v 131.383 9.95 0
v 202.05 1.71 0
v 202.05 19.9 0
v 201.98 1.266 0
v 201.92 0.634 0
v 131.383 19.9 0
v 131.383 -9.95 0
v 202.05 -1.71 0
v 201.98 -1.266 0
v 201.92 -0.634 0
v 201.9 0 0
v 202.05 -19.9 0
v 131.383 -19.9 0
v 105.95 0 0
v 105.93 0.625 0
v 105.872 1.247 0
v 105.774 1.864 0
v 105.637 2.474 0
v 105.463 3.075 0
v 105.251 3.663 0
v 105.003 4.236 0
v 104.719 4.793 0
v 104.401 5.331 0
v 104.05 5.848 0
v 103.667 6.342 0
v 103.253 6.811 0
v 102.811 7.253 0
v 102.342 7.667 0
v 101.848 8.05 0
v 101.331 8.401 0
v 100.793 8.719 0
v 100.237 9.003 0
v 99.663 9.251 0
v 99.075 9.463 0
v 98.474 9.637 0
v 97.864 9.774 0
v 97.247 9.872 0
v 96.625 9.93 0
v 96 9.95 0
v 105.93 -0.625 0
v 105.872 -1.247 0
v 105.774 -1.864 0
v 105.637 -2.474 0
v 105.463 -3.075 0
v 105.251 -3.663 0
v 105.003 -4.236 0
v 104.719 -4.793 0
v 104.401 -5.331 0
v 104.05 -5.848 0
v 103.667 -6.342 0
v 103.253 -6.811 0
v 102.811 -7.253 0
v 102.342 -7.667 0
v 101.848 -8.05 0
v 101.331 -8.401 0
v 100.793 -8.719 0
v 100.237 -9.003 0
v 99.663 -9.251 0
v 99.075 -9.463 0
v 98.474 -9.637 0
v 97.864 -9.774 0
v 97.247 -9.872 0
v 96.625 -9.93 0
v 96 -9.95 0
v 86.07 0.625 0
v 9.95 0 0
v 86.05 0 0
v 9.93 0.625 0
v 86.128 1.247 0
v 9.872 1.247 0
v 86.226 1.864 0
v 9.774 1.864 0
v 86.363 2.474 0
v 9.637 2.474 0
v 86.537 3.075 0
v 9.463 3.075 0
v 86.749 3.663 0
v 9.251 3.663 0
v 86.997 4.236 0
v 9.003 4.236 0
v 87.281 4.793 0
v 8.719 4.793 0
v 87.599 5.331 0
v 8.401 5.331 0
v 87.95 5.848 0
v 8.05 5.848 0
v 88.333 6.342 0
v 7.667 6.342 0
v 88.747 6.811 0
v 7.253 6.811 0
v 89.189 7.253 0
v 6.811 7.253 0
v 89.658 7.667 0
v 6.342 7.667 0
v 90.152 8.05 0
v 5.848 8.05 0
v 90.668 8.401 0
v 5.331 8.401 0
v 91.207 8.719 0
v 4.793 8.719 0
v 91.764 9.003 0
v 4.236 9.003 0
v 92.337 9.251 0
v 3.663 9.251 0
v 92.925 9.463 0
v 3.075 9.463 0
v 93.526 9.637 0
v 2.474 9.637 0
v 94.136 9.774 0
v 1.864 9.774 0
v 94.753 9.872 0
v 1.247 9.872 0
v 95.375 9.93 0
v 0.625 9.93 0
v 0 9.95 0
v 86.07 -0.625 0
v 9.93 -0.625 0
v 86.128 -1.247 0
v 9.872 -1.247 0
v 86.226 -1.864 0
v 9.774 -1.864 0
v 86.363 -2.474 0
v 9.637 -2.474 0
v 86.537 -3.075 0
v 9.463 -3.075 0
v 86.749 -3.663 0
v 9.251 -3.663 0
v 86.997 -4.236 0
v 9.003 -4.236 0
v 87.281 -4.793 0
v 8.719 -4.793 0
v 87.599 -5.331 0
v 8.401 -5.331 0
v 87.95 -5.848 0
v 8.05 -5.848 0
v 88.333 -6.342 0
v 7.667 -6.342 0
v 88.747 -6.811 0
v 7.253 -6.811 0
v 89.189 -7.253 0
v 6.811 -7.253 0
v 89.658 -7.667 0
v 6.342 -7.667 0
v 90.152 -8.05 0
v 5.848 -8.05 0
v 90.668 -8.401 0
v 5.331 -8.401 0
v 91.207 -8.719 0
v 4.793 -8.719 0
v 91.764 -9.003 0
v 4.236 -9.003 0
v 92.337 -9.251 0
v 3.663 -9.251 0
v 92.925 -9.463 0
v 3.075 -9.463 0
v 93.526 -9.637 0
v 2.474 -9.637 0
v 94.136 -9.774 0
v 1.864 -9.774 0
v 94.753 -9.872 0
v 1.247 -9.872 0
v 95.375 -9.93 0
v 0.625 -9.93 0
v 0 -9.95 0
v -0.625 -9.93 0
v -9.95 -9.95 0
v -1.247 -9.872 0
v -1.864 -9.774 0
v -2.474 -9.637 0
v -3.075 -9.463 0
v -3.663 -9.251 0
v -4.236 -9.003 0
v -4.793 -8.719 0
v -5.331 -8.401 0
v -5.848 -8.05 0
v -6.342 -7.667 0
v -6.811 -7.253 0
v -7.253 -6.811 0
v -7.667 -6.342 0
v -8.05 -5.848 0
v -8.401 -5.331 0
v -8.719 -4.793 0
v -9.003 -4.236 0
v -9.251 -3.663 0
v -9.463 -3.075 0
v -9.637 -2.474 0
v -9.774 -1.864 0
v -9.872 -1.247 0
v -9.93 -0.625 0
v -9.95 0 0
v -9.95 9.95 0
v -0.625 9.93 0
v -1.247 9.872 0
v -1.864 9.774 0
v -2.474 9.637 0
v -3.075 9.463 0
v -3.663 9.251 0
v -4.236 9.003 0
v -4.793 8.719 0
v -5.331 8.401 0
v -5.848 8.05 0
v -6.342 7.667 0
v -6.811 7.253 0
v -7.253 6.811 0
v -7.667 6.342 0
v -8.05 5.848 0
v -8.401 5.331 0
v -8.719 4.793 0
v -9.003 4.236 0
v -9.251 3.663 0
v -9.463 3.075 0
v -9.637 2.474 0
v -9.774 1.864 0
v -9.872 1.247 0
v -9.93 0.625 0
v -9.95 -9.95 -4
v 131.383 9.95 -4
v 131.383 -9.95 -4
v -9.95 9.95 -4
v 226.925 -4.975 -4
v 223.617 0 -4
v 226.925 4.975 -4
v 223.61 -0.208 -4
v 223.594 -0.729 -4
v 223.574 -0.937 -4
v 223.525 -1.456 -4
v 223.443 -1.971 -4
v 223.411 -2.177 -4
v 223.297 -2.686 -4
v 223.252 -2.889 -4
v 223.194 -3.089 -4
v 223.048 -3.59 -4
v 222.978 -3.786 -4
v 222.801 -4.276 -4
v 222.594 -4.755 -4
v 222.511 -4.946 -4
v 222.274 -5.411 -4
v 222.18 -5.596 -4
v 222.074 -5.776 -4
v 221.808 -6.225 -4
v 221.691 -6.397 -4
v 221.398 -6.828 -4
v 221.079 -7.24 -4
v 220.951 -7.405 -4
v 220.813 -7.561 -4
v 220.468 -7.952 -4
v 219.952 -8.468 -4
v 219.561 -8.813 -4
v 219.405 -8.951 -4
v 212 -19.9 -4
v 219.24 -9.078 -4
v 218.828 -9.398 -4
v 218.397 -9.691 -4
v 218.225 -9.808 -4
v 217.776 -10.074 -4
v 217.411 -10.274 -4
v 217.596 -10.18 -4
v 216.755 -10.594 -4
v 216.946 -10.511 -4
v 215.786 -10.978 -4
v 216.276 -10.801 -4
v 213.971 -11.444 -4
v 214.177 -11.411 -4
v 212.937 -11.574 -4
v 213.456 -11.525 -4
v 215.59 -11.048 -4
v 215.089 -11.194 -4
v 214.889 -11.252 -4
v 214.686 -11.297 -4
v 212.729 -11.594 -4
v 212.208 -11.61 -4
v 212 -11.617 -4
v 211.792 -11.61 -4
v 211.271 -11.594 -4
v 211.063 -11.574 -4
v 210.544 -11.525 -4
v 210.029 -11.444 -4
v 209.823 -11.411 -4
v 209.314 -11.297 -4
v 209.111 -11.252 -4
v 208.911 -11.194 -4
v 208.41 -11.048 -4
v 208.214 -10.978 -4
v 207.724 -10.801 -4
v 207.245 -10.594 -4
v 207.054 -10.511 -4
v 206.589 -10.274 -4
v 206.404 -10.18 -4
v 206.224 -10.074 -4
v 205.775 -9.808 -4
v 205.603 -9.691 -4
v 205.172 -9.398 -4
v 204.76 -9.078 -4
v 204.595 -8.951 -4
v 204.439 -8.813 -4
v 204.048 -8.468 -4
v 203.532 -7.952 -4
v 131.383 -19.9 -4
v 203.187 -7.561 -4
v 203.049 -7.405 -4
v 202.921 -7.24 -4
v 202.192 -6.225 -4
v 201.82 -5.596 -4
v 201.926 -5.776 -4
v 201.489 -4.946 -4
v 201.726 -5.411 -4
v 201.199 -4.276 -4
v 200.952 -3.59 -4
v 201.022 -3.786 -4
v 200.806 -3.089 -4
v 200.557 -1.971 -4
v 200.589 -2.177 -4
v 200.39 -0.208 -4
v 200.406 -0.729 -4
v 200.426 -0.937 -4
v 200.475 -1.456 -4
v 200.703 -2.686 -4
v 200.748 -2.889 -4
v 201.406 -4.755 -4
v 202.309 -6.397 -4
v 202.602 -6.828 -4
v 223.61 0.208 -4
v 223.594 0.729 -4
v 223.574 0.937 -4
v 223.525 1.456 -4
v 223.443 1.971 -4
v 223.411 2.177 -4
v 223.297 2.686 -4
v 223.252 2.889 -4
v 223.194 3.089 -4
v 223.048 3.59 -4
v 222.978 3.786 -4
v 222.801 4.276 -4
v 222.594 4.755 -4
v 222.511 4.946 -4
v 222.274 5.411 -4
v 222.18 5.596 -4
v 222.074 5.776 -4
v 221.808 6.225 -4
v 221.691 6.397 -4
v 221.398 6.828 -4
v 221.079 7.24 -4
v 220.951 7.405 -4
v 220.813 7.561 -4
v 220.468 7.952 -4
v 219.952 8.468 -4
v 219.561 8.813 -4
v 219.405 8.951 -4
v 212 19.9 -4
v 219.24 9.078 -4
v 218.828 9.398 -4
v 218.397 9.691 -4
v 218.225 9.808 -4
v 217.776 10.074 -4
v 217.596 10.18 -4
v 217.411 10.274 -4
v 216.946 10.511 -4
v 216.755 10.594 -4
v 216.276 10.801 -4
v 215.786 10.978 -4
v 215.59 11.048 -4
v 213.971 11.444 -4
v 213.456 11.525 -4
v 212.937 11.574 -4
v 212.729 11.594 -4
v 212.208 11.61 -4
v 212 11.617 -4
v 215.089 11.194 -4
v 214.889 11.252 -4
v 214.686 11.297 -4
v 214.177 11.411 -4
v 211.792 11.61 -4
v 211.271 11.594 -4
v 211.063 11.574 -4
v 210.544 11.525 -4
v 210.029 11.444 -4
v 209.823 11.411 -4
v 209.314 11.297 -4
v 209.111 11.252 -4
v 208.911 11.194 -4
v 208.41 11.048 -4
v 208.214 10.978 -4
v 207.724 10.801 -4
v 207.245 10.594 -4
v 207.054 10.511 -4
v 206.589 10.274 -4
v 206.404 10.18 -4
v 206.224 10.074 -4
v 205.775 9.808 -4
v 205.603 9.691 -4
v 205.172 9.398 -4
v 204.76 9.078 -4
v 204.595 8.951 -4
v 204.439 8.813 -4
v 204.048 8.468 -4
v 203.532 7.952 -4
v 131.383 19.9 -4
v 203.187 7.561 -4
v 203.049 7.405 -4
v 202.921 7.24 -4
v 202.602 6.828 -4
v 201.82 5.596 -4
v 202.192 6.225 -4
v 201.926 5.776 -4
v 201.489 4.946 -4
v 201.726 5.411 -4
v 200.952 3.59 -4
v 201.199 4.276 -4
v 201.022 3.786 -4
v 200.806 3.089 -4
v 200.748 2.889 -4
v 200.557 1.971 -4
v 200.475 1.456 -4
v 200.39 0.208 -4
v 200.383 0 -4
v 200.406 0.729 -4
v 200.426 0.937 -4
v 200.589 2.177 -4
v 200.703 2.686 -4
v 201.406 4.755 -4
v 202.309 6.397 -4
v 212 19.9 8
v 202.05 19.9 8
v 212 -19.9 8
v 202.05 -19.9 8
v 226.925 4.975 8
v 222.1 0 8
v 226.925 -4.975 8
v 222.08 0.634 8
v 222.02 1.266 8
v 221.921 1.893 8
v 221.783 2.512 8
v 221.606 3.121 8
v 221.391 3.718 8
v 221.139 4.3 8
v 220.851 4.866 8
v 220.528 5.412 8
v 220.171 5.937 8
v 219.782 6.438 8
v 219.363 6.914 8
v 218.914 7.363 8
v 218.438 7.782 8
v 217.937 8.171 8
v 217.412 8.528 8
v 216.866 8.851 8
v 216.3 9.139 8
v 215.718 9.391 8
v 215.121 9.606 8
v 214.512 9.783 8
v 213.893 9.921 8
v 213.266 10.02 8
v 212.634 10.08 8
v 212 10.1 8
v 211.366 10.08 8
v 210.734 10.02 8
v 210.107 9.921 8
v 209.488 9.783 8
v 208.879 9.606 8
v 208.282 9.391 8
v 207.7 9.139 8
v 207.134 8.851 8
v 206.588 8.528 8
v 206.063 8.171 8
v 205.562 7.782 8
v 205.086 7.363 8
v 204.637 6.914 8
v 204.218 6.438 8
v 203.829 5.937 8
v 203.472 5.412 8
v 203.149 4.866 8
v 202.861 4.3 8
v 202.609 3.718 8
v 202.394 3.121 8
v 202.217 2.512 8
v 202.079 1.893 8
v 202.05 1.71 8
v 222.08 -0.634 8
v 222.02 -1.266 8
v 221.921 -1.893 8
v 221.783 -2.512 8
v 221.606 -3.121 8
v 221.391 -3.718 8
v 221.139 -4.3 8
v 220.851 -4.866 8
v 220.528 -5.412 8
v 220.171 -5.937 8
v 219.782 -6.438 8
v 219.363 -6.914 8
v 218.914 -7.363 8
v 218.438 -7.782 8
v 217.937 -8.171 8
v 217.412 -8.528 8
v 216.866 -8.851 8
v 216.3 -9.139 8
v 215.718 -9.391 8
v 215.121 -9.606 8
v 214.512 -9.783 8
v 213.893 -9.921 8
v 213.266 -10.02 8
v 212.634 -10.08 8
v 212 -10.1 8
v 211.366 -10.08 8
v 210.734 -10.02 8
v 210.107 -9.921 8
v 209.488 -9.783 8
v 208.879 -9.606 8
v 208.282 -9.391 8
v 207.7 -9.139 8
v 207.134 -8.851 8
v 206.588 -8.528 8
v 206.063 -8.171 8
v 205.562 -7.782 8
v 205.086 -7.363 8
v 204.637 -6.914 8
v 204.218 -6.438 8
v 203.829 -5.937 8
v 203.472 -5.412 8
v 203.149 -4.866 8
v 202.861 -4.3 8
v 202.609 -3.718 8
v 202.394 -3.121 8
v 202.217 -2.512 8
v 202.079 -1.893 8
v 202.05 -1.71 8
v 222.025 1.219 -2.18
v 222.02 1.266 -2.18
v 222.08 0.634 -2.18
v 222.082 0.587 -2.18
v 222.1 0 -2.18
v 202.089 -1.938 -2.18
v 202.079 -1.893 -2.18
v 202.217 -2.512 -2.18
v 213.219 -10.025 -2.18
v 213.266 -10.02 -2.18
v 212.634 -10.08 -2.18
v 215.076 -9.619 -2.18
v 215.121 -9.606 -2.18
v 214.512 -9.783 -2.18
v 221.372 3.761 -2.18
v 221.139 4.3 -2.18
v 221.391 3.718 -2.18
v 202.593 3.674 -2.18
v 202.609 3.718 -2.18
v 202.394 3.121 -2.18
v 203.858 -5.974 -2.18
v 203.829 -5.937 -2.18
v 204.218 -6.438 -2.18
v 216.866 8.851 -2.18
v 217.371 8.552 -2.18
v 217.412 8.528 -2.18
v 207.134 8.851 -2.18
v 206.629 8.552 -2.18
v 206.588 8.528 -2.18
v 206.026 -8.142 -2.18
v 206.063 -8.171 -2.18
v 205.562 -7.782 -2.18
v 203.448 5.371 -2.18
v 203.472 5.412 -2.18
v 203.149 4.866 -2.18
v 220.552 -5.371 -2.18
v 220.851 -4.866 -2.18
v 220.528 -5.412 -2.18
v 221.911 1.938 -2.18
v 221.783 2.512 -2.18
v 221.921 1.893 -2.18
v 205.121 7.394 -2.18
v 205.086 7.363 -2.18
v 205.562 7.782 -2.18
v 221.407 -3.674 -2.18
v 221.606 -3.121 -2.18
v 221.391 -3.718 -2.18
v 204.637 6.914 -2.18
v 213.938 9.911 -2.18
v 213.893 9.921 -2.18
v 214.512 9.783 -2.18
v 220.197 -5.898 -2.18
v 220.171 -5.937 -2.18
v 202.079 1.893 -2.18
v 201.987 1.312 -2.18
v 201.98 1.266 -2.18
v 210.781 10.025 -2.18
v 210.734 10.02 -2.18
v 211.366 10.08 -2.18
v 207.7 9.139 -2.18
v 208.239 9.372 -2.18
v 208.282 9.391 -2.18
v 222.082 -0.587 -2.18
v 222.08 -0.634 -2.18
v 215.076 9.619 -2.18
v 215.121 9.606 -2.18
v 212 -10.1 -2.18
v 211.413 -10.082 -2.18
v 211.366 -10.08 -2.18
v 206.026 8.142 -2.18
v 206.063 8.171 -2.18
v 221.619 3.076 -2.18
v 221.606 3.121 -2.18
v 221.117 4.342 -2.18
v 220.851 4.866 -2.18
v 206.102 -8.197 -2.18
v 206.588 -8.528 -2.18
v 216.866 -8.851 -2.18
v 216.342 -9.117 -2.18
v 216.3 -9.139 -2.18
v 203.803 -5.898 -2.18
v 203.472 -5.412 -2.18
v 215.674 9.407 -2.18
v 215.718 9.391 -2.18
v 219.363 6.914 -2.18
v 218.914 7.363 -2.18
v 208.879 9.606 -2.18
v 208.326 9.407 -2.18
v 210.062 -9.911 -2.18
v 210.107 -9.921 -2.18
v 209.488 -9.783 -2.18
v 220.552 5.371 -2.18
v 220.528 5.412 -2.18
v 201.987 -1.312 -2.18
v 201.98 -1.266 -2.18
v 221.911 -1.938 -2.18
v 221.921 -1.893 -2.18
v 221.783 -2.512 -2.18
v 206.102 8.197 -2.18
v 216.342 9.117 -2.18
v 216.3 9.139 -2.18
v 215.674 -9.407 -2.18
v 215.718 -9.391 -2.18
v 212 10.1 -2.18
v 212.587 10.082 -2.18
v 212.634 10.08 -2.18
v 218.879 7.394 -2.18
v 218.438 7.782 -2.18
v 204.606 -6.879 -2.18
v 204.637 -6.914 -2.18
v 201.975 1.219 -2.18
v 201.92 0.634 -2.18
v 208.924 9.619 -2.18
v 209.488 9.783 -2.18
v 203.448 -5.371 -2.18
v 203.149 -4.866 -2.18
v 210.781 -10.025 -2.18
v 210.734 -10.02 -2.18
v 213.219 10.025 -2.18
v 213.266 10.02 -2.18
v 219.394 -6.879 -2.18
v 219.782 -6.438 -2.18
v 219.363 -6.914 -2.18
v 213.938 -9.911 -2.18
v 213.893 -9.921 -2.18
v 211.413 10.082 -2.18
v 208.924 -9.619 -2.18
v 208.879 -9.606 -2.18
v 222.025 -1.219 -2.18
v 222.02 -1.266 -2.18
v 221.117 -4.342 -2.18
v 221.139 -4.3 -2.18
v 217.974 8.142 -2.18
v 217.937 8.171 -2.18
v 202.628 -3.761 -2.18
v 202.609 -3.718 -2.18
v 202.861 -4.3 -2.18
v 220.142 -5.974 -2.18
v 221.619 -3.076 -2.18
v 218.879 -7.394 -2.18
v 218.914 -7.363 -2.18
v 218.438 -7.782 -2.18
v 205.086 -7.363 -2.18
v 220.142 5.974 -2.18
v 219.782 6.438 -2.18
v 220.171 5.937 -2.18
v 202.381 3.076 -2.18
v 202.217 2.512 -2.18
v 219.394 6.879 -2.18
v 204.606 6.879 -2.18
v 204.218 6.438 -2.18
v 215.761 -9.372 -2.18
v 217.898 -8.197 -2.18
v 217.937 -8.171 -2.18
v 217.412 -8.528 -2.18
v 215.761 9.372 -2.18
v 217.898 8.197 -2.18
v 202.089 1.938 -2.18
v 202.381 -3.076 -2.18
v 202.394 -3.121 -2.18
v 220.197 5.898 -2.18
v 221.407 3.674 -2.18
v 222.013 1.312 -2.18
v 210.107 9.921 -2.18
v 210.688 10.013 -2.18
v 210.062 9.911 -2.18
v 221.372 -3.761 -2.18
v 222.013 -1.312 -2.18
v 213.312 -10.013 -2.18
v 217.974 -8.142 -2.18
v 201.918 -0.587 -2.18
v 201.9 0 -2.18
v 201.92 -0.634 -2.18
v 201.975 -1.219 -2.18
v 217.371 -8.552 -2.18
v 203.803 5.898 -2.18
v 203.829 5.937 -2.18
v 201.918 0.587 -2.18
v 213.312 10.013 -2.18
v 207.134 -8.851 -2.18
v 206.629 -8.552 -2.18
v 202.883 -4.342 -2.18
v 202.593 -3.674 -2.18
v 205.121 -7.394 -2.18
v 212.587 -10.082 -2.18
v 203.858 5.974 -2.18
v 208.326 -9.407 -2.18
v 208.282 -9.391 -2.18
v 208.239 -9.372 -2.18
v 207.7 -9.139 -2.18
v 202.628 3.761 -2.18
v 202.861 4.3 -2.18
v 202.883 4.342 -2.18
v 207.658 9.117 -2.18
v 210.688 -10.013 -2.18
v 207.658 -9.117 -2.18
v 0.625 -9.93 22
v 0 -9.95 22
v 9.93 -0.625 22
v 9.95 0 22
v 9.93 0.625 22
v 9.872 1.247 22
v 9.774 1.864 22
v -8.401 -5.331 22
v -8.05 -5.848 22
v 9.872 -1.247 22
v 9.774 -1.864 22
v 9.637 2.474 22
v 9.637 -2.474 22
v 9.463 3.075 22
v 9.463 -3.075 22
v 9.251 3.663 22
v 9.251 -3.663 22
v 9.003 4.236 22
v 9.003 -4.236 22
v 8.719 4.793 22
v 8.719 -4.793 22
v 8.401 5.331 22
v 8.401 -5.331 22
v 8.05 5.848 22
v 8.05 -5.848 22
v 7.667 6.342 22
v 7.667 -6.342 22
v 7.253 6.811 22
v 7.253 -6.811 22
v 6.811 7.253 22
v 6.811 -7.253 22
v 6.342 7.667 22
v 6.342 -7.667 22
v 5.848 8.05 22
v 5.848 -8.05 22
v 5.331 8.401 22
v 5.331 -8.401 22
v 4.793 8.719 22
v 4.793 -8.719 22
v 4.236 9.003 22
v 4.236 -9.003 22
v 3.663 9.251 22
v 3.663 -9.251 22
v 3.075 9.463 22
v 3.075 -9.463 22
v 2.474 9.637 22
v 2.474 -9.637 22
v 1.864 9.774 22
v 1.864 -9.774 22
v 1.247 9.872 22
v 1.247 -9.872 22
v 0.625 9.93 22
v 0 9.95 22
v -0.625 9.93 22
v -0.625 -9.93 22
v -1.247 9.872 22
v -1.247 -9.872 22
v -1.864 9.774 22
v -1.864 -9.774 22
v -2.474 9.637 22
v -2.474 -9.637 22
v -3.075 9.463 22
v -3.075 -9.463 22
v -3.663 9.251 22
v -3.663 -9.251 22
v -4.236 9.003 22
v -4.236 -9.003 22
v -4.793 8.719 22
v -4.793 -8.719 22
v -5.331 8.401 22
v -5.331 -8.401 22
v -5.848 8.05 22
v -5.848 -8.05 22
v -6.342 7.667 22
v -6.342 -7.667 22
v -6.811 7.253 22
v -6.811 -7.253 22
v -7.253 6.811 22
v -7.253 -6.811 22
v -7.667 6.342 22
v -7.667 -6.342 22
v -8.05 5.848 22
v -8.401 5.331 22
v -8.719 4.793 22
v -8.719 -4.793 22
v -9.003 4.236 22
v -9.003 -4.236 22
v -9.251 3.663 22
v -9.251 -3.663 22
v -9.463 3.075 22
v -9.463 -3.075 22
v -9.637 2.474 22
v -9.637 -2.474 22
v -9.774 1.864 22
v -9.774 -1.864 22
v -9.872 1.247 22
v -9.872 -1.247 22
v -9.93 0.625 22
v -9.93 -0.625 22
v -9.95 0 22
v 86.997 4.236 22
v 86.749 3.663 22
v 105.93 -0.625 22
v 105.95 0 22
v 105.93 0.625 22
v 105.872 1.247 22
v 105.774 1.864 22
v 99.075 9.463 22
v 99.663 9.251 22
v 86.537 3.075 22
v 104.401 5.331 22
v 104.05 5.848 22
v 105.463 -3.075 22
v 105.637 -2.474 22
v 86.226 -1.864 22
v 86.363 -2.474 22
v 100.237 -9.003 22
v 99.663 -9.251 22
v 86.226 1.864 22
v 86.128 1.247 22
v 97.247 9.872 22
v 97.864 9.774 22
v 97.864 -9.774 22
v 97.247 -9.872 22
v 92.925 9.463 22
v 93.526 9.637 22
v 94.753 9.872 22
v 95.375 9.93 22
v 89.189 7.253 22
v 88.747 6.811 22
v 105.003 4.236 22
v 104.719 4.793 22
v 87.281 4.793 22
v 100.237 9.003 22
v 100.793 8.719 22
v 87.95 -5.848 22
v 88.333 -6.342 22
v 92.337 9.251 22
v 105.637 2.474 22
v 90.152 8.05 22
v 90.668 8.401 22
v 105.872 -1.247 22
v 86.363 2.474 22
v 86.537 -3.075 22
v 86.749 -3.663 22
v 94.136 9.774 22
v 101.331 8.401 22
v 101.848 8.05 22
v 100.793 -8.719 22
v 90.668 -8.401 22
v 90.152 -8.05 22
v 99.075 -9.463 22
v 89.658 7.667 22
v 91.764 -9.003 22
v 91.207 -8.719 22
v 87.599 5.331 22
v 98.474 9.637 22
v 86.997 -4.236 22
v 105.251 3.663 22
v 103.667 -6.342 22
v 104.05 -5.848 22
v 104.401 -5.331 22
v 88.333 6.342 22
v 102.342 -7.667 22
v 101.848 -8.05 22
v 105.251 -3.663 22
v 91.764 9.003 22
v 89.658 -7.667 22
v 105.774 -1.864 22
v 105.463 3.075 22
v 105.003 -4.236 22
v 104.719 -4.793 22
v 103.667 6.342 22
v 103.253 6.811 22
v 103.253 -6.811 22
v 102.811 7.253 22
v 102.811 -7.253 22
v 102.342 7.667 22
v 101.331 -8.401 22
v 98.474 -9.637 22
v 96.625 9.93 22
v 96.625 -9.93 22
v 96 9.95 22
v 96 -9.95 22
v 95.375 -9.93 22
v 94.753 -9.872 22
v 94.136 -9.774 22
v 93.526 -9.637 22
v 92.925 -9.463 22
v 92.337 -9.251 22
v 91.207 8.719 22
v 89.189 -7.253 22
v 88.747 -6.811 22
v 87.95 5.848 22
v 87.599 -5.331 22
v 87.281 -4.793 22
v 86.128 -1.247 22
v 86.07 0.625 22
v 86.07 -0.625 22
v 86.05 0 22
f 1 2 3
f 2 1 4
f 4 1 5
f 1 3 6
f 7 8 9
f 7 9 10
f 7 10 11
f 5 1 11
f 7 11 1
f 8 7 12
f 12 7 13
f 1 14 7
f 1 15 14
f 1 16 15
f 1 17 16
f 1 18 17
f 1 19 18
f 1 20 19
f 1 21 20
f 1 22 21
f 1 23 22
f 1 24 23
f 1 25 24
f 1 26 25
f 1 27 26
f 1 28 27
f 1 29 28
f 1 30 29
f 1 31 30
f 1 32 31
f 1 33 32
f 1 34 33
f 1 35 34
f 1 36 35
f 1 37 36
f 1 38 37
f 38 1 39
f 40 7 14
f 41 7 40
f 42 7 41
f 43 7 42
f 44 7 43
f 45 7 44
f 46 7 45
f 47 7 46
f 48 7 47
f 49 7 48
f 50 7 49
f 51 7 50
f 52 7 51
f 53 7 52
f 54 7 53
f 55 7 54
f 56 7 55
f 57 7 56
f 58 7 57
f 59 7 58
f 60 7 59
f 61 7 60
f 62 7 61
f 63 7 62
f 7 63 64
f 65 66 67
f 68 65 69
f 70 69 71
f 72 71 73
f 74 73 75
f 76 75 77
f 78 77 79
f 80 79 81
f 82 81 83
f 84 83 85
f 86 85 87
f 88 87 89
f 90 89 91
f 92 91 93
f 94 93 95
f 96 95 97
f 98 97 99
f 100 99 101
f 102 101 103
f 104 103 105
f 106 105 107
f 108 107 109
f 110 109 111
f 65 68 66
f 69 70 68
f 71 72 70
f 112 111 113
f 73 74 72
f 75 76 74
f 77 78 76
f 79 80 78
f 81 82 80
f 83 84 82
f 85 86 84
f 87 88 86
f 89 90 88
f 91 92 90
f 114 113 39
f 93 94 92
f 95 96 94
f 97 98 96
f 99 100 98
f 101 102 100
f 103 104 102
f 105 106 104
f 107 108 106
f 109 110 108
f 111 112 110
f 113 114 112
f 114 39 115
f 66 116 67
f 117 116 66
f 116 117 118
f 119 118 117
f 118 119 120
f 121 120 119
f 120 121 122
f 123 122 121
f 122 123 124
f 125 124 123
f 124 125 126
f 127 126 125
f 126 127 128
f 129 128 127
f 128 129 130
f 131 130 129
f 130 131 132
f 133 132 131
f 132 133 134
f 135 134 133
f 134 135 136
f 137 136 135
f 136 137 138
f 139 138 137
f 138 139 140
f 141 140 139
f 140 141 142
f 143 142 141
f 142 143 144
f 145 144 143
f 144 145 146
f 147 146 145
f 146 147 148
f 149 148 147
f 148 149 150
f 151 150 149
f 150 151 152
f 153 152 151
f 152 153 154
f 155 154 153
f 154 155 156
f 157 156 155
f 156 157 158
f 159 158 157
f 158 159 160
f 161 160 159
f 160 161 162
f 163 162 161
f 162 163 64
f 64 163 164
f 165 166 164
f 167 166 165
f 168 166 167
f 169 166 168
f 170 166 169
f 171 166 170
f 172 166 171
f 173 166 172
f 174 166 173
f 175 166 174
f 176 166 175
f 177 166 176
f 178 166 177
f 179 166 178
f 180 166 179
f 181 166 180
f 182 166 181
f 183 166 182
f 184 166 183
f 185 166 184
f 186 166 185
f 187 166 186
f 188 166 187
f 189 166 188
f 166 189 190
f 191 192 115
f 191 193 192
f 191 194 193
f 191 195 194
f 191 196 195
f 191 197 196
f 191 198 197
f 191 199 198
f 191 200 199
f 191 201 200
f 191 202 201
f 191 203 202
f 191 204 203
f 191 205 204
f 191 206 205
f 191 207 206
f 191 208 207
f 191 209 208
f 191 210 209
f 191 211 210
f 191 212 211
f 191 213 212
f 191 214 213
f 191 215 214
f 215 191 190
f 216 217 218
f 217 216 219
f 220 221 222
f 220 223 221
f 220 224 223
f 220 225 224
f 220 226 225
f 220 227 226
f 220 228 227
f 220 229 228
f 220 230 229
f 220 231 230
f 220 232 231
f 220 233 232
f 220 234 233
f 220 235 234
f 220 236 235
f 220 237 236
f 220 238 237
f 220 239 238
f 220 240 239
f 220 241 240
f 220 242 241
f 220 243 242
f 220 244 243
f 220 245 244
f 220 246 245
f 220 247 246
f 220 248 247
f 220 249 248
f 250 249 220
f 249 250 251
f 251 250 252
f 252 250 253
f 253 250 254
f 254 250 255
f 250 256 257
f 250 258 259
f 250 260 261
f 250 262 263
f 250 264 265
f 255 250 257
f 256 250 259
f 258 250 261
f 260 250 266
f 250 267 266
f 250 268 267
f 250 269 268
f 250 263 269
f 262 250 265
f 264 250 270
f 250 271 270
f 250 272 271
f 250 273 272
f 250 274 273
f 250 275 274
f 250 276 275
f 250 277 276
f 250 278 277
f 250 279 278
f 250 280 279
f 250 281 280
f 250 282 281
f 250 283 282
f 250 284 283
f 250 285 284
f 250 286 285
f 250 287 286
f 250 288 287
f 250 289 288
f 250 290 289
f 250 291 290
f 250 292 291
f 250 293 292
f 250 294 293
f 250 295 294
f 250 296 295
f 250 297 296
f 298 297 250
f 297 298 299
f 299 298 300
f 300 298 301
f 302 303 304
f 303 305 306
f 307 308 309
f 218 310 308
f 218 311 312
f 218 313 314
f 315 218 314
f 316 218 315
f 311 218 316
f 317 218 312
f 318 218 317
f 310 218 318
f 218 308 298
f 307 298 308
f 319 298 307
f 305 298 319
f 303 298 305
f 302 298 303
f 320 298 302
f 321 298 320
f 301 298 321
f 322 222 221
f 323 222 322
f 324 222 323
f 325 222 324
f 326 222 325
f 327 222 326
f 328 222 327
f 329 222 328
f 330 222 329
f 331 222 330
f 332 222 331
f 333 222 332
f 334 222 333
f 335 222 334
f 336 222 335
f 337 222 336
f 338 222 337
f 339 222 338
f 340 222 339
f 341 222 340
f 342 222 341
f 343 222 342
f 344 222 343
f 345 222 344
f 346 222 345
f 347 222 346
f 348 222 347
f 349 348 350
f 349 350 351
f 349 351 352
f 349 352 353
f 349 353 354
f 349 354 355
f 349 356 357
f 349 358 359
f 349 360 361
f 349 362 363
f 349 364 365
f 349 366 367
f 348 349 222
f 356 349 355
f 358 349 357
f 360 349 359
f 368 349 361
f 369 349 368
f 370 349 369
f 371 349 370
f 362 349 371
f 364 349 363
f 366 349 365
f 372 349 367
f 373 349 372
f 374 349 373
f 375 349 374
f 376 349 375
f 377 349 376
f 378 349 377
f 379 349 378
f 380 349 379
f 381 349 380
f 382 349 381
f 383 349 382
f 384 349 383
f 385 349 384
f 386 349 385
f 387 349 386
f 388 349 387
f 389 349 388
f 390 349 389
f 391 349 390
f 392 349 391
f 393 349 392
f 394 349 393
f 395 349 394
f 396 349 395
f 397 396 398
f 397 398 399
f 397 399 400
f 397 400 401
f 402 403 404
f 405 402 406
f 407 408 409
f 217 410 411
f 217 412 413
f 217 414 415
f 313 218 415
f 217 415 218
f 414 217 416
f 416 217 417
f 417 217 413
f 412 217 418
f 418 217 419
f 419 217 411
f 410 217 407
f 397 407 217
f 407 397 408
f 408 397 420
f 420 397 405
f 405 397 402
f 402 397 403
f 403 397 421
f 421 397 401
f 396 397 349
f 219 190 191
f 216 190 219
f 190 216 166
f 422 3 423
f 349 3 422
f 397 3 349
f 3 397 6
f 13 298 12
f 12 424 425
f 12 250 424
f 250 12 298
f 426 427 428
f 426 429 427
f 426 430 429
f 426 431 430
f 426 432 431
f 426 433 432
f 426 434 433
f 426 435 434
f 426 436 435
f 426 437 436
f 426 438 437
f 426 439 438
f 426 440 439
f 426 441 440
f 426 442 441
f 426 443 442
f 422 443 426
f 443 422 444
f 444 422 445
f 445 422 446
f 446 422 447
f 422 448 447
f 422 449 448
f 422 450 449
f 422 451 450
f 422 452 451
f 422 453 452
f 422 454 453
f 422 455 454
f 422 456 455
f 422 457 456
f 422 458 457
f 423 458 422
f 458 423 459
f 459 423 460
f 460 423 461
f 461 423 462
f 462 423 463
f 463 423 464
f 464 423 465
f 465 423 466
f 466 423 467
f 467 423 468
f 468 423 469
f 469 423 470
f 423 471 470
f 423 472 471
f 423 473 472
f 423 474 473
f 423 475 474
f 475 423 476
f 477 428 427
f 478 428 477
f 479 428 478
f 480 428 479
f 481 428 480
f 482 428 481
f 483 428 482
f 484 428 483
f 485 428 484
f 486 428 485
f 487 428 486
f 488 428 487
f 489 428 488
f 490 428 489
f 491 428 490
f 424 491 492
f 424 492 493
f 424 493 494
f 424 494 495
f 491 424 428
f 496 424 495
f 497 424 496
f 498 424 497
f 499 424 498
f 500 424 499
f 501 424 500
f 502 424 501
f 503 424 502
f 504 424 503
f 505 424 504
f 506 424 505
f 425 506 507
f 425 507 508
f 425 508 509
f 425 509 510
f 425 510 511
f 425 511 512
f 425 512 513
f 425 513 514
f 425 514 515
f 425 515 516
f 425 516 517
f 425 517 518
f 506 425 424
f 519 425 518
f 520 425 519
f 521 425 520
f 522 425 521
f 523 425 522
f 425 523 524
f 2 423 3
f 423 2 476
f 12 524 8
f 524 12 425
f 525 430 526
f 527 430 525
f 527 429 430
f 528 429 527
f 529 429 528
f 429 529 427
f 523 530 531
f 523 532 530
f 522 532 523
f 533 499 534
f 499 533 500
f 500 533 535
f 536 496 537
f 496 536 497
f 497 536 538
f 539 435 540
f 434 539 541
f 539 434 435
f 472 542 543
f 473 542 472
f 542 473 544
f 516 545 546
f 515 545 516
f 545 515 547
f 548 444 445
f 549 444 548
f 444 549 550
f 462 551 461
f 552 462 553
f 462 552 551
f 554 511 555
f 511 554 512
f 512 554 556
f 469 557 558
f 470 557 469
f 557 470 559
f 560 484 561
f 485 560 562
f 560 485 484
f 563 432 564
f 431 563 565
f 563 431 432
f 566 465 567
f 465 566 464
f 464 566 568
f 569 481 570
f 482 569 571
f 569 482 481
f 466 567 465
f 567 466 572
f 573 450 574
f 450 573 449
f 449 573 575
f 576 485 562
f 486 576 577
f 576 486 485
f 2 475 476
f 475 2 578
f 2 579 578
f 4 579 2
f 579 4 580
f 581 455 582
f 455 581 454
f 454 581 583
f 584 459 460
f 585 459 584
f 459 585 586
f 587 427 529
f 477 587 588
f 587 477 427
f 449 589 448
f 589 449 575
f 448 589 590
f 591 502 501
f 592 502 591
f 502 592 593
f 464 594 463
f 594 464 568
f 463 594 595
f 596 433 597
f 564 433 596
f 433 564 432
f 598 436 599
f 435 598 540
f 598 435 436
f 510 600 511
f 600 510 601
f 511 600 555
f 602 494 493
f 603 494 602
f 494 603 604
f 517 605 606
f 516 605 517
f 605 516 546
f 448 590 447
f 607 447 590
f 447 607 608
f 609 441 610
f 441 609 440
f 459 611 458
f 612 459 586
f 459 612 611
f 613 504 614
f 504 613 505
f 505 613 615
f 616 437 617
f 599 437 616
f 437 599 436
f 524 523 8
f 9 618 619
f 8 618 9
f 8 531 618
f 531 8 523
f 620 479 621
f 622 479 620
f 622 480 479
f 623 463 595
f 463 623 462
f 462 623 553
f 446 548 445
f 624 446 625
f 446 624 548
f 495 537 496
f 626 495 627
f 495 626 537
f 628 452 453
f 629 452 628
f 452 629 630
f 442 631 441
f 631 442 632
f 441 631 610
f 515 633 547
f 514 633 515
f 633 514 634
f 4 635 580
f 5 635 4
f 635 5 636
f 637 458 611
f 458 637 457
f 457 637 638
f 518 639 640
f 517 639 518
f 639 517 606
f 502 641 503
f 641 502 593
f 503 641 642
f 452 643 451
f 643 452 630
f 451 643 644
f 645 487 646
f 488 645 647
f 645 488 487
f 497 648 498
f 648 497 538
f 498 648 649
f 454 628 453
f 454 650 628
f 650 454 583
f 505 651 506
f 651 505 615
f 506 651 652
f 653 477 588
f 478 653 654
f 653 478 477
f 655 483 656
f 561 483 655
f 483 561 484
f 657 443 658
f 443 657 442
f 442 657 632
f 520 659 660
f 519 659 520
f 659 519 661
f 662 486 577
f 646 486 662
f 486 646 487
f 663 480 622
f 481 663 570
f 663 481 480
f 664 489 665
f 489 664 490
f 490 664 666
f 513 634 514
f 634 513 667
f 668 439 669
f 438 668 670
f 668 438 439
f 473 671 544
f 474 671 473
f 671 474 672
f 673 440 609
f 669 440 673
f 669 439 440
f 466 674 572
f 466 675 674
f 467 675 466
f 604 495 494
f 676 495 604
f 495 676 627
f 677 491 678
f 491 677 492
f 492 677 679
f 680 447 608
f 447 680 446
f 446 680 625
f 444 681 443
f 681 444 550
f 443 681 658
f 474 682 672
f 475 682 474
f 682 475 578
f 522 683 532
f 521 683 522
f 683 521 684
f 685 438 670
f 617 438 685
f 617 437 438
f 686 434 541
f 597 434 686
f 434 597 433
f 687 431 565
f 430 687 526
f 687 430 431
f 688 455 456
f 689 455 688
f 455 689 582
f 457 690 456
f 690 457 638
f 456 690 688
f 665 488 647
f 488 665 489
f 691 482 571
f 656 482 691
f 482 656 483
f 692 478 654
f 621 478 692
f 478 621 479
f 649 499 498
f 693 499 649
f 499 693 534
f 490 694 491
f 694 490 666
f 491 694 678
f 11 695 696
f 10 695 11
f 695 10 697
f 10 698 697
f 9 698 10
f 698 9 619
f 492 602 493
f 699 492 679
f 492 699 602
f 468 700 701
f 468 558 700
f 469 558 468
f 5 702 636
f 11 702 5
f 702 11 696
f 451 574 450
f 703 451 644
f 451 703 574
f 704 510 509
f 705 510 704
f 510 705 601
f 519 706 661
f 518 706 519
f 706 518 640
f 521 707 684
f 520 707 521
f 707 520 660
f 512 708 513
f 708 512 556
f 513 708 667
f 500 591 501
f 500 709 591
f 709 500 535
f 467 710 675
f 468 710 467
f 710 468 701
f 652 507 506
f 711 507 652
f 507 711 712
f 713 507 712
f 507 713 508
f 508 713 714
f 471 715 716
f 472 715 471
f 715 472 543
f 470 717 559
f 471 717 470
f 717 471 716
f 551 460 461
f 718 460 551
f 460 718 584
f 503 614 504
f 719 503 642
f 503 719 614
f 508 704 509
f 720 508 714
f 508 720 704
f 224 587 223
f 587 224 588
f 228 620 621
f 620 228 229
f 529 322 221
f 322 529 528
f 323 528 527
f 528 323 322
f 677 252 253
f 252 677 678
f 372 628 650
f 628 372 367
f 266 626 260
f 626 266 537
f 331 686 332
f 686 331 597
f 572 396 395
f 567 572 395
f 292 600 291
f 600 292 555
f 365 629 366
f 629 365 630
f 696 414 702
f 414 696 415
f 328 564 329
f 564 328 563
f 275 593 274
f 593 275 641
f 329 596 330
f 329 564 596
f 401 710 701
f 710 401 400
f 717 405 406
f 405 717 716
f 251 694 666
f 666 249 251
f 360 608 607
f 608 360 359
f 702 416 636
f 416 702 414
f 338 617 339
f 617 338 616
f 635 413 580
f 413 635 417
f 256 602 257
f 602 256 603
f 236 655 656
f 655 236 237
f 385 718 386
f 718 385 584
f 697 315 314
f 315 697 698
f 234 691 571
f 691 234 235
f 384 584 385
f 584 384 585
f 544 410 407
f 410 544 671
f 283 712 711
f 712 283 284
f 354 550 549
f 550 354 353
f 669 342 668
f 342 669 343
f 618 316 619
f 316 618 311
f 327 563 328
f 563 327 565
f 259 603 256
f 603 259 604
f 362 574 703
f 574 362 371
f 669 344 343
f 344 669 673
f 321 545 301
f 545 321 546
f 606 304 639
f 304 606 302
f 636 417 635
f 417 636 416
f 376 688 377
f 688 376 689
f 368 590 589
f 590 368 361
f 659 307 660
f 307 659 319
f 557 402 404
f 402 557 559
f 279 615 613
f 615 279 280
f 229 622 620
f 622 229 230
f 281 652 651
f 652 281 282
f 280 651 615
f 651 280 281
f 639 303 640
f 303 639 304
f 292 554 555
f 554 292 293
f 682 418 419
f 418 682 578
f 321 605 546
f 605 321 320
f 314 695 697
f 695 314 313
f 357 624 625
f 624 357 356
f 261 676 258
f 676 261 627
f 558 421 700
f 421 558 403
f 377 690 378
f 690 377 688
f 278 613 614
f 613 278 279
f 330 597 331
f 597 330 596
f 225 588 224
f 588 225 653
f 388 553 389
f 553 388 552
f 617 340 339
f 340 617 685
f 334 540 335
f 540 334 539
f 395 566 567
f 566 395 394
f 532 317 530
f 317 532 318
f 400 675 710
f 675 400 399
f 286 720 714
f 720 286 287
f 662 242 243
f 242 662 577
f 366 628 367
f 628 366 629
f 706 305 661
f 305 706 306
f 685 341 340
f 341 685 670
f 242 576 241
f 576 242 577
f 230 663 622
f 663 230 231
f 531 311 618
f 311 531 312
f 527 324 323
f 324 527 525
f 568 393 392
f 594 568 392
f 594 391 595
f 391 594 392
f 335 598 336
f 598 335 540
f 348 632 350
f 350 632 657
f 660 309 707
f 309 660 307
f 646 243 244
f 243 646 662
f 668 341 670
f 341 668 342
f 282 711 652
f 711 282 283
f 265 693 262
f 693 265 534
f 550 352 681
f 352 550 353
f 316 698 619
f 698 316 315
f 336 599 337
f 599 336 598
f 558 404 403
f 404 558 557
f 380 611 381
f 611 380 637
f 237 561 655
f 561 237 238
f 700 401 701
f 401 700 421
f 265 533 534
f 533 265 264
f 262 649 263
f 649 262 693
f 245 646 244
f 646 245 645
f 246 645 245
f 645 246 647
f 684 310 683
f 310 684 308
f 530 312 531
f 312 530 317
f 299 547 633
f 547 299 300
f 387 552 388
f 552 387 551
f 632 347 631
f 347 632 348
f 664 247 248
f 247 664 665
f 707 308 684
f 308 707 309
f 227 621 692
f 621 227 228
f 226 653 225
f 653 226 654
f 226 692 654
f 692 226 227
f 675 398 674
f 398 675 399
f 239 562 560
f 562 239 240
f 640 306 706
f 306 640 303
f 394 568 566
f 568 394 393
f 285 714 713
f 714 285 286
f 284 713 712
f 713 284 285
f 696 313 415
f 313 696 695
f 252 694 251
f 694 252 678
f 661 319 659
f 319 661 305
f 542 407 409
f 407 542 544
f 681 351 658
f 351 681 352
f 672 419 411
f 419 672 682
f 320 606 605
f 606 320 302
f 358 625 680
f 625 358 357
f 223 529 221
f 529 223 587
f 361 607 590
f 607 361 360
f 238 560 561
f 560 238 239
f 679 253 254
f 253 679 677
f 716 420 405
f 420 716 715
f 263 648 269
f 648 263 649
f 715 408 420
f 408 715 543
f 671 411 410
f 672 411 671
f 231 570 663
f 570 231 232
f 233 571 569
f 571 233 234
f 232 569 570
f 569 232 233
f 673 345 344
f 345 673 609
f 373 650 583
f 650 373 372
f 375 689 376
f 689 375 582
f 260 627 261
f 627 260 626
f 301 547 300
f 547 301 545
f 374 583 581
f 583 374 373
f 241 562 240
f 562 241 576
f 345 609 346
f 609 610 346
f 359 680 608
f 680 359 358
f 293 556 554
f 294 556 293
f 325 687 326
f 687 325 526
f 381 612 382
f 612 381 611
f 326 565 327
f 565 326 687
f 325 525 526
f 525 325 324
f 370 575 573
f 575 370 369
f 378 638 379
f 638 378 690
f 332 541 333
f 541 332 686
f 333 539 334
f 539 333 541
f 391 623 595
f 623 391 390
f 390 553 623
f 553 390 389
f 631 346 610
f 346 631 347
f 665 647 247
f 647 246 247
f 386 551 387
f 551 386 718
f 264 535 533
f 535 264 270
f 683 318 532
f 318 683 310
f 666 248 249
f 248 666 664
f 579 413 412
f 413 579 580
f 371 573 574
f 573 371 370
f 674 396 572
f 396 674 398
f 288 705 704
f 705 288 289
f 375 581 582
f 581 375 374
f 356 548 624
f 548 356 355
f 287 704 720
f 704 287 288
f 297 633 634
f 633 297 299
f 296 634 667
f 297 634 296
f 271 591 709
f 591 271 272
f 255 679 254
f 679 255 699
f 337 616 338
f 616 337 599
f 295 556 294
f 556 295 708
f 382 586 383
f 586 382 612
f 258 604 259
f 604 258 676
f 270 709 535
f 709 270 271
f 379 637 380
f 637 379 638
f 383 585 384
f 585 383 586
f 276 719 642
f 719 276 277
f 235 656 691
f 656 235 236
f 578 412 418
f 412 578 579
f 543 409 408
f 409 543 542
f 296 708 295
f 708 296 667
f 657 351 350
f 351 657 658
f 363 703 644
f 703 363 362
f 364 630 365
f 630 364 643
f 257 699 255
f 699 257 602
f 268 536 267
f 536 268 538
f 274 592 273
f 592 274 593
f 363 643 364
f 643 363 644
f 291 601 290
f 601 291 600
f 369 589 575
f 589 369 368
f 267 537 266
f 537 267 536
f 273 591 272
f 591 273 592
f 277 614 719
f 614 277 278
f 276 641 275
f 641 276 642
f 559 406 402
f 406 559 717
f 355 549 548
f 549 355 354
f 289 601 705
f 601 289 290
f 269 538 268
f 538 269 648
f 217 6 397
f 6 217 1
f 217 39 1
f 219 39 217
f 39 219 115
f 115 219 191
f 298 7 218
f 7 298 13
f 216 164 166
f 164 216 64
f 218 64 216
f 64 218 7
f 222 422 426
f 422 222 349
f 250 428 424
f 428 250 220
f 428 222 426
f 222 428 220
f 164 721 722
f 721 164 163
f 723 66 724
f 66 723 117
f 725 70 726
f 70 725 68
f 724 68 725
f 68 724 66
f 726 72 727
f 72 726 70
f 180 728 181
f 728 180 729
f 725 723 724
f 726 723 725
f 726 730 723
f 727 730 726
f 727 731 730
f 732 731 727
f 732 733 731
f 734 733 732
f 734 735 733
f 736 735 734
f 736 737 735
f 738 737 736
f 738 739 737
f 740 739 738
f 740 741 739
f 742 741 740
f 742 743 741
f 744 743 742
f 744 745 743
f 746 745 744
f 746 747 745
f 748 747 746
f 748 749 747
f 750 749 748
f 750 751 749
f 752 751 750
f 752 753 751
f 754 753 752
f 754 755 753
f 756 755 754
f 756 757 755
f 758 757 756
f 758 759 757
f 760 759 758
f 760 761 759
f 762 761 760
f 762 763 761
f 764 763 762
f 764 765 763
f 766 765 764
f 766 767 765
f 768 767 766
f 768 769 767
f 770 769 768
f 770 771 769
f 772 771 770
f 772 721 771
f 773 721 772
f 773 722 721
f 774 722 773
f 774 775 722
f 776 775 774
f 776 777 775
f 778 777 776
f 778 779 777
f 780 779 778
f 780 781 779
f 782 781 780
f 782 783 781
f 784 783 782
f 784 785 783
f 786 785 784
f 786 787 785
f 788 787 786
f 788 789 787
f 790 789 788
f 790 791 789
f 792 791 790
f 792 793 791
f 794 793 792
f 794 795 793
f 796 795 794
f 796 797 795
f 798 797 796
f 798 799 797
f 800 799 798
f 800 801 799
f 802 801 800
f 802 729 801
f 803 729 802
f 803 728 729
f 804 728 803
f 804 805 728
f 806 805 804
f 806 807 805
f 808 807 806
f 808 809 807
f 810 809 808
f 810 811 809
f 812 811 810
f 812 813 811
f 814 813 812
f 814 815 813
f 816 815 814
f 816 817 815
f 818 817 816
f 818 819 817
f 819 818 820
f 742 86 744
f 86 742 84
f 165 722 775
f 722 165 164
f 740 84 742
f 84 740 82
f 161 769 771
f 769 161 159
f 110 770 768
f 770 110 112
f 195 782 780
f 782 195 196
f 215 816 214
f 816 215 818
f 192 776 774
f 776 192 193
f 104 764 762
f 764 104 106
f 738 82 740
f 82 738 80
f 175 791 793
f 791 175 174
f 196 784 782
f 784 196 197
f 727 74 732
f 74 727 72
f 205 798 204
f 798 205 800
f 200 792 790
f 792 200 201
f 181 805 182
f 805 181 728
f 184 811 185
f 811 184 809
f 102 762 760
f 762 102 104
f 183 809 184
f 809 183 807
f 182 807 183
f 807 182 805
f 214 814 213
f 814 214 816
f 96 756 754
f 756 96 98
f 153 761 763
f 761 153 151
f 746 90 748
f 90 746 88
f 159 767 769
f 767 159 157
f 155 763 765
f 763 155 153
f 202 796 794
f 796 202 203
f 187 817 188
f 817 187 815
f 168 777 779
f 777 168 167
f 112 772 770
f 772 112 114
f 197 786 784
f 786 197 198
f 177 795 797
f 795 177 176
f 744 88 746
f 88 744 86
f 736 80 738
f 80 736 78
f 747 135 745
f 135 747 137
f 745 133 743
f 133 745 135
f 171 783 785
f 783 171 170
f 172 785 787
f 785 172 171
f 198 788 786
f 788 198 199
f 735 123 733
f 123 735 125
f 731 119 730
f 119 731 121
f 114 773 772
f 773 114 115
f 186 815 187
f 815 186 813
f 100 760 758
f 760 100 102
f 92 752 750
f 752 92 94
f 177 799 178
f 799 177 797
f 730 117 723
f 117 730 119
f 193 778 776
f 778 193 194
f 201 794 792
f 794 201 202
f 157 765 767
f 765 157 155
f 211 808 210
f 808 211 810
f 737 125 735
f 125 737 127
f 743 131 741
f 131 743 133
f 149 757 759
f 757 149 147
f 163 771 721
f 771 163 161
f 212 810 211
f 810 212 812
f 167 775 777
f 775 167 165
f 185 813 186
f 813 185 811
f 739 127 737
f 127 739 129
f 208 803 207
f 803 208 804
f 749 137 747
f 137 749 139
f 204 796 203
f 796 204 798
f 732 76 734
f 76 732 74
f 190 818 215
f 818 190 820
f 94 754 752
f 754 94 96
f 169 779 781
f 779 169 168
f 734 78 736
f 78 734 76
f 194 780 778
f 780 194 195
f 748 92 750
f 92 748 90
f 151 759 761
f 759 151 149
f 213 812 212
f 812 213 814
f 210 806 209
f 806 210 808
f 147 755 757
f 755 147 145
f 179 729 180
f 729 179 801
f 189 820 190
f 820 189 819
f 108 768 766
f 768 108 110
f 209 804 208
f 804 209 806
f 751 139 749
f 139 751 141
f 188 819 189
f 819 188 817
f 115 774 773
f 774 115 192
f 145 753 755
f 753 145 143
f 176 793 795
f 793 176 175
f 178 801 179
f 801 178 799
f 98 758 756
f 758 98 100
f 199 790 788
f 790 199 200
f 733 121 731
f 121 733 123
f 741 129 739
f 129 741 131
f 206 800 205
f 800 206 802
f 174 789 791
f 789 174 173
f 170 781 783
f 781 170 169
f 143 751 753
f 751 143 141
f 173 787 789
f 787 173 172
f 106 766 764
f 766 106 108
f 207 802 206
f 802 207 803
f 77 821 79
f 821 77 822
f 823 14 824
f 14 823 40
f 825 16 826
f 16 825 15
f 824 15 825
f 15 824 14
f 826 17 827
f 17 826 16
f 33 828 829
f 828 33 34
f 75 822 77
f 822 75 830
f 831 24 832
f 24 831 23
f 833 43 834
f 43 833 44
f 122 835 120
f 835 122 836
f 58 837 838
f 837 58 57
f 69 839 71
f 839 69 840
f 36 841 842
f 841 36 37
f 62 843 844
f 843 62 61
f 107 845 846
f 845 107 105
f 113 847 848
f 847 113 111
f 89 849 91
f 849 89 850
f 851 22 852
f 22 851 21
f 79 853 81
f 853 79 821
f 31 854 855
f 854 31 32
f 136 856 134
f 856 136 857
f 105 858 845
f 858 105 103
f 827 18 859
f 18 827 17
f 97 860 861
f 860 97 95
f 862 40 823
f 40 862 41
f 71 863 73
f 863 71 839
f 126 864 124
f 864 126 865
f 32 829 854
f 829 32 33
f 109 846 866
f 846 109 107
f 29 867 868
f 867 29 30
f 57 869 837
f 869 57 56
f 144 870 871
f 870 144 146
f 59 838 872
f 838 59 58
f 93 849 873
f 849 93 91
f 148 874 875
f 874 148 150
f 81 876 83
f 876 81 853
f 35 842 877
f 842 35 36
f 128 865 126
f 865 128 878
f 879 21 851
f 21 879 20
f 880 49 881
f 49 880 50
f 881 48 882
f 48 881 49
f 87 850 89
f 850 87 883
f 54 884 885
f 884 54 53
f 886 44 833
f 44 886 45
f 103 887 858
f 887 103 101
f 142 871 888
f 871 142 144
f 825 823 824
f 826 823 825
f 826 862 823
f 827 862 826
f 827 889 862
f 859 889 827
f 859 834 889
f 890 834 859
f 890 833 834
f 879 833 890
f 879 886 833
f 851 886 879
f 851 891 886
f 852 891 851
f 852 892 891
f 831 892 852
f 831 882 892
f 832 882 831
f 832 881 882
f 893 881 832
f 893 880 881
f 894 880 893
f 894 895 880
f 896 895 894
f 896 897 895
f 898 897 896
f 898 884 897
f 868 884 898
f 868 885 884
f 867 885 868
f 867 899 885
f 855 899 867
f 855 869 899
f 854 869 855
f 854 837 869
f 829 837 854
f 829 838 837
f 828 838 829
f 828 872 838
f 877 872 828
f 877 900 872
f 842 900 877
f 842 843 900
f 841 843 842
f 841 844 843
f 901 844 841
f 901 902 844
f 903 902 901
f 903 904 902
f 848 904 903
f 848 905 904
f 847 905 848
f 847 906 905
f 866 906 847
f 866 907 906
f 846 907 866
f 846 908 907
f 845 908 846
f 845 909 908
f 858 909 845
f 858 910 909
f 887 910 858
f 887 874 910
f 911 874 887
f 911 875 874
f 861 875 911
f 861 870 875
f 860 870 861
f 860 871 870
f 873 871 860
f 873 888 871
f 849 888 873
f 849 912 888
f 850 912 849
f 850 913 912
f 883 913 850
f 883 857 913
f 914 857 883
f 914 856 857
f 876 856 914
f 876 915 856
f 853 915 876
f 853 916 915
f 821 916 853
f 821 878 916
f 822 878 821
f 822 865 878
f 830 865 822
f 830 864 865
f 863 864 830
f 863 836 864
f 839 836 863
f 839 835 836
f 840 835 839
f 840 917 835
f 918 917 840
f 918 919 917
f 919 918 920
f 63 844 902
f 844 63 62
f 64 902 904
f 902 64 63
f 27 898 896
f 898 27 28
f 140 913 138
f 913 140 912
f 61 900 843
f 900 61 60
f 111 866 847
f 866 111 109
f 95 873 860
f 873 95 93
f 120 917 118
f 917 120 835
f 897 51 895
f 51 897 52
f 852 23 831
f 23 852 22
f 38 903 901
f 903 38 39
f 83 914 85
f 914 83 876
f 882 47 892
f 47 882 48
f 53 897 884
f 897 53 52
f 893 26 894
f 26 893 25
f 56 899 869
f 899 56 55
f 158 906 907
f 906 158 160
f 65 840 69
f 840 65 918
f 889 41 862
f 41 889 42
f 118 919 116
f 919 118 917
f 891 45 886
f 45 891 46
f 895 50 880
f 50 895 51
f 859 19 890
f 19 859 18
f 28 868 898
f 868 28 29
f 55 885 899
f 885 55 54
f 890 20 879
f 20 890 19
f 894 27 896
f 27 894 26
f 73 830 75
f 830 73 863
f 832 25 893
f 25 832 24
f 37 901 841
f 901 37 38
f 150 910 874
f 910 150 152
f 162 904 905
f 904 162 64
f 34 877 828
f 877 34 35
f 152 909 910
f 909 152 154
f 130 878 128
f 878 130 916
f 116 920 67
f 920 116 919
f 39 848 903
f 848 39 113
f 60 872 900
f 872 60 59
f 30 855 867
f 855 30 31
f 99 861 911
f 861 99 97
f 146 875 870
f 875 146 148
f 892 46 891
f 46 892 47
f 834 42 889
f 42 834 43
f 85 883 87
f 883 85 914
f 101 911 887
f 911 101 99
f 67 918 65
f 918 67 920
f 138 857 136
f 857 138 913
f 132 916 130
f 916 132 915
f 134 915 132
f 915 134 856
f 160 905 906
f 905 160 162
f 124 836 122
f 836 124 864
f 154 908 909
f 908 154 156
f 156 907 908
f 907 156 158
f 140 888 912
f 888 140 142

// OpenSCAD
$fn=100;

diameter = 19.9;
parfDistanceBetweenHoles = 96;

materialThickness = 22;
wallThickness = 2;
lidThickness = 2;
holderThickness = 4;
removalHolePosition = 212;
removalHoleDiameter = 20.2;


union(){
difference() {
union() {
translate([
    -diameter/2,
    -diameter,
    -holderThickness])
cube(size = [
    removalHolePosition+diameter*3/2,
    diameter*2,
    holderThickness]);

translate([
    removalHolePosition-diameter/2,
    -diameter,
    0])
cube(size = [
    diameter*3/2,
    diameter*2,
    holderThickness*2]);
}

union() {
translate([removalHolePosition,0,-holderThickness-1])
cylinder(
    h = holderThickness*3+2, 
    d = removalHoleDiameter);

translate([removalHolePosition,0,-holderThickness-1])
cylinder(
    h = 3, 
    d1 = diameter+5,
    d2 = diameter);

translate([
    -diameter/2,
    diameter/2,
    -holderThickness-1])
cube(size = [
    removalHolePosition*2/3,
    diameter/2,
    holderThickness*3+2]);
    
translate([
    -diameter/2,
    -diameter,
    -holderThickness-1])
cube(size = [
    removalHolePosition*2/3,
    diameter/2,
    holderThickness*3+2]);
    
translate([
    removalHolePosition+diameter,
    0,
    -holderThickness-1])
rotate([0,0,45])
cube(size = [
    sqrt(2)*diameter,
    sqrt(2)*diameter,
    holderThickness*3+2]);

translate([
    removalHolePosition,
    -diameter,
    -holderThickness-1])
rotate([0,0,-45])
cube(size = [
    sqrt(2)*diameter,
    sqrt(2)*diameter,
    holderThickness*3+2]);    

translate([
    removalHolePosition+diameter*3/4,
    -diameter/2,
    -holderThickness-1])
cube(size = [
    diameter,
    diameter,
    holderThickness*3+2]);
}}


cylinder(
    h = materialThickness, 
    d = diameter);


translate([parfDistanceBetweenHoles,0,0])
cylinder(
    h = materialThickness, 
    d = diameter);
}
